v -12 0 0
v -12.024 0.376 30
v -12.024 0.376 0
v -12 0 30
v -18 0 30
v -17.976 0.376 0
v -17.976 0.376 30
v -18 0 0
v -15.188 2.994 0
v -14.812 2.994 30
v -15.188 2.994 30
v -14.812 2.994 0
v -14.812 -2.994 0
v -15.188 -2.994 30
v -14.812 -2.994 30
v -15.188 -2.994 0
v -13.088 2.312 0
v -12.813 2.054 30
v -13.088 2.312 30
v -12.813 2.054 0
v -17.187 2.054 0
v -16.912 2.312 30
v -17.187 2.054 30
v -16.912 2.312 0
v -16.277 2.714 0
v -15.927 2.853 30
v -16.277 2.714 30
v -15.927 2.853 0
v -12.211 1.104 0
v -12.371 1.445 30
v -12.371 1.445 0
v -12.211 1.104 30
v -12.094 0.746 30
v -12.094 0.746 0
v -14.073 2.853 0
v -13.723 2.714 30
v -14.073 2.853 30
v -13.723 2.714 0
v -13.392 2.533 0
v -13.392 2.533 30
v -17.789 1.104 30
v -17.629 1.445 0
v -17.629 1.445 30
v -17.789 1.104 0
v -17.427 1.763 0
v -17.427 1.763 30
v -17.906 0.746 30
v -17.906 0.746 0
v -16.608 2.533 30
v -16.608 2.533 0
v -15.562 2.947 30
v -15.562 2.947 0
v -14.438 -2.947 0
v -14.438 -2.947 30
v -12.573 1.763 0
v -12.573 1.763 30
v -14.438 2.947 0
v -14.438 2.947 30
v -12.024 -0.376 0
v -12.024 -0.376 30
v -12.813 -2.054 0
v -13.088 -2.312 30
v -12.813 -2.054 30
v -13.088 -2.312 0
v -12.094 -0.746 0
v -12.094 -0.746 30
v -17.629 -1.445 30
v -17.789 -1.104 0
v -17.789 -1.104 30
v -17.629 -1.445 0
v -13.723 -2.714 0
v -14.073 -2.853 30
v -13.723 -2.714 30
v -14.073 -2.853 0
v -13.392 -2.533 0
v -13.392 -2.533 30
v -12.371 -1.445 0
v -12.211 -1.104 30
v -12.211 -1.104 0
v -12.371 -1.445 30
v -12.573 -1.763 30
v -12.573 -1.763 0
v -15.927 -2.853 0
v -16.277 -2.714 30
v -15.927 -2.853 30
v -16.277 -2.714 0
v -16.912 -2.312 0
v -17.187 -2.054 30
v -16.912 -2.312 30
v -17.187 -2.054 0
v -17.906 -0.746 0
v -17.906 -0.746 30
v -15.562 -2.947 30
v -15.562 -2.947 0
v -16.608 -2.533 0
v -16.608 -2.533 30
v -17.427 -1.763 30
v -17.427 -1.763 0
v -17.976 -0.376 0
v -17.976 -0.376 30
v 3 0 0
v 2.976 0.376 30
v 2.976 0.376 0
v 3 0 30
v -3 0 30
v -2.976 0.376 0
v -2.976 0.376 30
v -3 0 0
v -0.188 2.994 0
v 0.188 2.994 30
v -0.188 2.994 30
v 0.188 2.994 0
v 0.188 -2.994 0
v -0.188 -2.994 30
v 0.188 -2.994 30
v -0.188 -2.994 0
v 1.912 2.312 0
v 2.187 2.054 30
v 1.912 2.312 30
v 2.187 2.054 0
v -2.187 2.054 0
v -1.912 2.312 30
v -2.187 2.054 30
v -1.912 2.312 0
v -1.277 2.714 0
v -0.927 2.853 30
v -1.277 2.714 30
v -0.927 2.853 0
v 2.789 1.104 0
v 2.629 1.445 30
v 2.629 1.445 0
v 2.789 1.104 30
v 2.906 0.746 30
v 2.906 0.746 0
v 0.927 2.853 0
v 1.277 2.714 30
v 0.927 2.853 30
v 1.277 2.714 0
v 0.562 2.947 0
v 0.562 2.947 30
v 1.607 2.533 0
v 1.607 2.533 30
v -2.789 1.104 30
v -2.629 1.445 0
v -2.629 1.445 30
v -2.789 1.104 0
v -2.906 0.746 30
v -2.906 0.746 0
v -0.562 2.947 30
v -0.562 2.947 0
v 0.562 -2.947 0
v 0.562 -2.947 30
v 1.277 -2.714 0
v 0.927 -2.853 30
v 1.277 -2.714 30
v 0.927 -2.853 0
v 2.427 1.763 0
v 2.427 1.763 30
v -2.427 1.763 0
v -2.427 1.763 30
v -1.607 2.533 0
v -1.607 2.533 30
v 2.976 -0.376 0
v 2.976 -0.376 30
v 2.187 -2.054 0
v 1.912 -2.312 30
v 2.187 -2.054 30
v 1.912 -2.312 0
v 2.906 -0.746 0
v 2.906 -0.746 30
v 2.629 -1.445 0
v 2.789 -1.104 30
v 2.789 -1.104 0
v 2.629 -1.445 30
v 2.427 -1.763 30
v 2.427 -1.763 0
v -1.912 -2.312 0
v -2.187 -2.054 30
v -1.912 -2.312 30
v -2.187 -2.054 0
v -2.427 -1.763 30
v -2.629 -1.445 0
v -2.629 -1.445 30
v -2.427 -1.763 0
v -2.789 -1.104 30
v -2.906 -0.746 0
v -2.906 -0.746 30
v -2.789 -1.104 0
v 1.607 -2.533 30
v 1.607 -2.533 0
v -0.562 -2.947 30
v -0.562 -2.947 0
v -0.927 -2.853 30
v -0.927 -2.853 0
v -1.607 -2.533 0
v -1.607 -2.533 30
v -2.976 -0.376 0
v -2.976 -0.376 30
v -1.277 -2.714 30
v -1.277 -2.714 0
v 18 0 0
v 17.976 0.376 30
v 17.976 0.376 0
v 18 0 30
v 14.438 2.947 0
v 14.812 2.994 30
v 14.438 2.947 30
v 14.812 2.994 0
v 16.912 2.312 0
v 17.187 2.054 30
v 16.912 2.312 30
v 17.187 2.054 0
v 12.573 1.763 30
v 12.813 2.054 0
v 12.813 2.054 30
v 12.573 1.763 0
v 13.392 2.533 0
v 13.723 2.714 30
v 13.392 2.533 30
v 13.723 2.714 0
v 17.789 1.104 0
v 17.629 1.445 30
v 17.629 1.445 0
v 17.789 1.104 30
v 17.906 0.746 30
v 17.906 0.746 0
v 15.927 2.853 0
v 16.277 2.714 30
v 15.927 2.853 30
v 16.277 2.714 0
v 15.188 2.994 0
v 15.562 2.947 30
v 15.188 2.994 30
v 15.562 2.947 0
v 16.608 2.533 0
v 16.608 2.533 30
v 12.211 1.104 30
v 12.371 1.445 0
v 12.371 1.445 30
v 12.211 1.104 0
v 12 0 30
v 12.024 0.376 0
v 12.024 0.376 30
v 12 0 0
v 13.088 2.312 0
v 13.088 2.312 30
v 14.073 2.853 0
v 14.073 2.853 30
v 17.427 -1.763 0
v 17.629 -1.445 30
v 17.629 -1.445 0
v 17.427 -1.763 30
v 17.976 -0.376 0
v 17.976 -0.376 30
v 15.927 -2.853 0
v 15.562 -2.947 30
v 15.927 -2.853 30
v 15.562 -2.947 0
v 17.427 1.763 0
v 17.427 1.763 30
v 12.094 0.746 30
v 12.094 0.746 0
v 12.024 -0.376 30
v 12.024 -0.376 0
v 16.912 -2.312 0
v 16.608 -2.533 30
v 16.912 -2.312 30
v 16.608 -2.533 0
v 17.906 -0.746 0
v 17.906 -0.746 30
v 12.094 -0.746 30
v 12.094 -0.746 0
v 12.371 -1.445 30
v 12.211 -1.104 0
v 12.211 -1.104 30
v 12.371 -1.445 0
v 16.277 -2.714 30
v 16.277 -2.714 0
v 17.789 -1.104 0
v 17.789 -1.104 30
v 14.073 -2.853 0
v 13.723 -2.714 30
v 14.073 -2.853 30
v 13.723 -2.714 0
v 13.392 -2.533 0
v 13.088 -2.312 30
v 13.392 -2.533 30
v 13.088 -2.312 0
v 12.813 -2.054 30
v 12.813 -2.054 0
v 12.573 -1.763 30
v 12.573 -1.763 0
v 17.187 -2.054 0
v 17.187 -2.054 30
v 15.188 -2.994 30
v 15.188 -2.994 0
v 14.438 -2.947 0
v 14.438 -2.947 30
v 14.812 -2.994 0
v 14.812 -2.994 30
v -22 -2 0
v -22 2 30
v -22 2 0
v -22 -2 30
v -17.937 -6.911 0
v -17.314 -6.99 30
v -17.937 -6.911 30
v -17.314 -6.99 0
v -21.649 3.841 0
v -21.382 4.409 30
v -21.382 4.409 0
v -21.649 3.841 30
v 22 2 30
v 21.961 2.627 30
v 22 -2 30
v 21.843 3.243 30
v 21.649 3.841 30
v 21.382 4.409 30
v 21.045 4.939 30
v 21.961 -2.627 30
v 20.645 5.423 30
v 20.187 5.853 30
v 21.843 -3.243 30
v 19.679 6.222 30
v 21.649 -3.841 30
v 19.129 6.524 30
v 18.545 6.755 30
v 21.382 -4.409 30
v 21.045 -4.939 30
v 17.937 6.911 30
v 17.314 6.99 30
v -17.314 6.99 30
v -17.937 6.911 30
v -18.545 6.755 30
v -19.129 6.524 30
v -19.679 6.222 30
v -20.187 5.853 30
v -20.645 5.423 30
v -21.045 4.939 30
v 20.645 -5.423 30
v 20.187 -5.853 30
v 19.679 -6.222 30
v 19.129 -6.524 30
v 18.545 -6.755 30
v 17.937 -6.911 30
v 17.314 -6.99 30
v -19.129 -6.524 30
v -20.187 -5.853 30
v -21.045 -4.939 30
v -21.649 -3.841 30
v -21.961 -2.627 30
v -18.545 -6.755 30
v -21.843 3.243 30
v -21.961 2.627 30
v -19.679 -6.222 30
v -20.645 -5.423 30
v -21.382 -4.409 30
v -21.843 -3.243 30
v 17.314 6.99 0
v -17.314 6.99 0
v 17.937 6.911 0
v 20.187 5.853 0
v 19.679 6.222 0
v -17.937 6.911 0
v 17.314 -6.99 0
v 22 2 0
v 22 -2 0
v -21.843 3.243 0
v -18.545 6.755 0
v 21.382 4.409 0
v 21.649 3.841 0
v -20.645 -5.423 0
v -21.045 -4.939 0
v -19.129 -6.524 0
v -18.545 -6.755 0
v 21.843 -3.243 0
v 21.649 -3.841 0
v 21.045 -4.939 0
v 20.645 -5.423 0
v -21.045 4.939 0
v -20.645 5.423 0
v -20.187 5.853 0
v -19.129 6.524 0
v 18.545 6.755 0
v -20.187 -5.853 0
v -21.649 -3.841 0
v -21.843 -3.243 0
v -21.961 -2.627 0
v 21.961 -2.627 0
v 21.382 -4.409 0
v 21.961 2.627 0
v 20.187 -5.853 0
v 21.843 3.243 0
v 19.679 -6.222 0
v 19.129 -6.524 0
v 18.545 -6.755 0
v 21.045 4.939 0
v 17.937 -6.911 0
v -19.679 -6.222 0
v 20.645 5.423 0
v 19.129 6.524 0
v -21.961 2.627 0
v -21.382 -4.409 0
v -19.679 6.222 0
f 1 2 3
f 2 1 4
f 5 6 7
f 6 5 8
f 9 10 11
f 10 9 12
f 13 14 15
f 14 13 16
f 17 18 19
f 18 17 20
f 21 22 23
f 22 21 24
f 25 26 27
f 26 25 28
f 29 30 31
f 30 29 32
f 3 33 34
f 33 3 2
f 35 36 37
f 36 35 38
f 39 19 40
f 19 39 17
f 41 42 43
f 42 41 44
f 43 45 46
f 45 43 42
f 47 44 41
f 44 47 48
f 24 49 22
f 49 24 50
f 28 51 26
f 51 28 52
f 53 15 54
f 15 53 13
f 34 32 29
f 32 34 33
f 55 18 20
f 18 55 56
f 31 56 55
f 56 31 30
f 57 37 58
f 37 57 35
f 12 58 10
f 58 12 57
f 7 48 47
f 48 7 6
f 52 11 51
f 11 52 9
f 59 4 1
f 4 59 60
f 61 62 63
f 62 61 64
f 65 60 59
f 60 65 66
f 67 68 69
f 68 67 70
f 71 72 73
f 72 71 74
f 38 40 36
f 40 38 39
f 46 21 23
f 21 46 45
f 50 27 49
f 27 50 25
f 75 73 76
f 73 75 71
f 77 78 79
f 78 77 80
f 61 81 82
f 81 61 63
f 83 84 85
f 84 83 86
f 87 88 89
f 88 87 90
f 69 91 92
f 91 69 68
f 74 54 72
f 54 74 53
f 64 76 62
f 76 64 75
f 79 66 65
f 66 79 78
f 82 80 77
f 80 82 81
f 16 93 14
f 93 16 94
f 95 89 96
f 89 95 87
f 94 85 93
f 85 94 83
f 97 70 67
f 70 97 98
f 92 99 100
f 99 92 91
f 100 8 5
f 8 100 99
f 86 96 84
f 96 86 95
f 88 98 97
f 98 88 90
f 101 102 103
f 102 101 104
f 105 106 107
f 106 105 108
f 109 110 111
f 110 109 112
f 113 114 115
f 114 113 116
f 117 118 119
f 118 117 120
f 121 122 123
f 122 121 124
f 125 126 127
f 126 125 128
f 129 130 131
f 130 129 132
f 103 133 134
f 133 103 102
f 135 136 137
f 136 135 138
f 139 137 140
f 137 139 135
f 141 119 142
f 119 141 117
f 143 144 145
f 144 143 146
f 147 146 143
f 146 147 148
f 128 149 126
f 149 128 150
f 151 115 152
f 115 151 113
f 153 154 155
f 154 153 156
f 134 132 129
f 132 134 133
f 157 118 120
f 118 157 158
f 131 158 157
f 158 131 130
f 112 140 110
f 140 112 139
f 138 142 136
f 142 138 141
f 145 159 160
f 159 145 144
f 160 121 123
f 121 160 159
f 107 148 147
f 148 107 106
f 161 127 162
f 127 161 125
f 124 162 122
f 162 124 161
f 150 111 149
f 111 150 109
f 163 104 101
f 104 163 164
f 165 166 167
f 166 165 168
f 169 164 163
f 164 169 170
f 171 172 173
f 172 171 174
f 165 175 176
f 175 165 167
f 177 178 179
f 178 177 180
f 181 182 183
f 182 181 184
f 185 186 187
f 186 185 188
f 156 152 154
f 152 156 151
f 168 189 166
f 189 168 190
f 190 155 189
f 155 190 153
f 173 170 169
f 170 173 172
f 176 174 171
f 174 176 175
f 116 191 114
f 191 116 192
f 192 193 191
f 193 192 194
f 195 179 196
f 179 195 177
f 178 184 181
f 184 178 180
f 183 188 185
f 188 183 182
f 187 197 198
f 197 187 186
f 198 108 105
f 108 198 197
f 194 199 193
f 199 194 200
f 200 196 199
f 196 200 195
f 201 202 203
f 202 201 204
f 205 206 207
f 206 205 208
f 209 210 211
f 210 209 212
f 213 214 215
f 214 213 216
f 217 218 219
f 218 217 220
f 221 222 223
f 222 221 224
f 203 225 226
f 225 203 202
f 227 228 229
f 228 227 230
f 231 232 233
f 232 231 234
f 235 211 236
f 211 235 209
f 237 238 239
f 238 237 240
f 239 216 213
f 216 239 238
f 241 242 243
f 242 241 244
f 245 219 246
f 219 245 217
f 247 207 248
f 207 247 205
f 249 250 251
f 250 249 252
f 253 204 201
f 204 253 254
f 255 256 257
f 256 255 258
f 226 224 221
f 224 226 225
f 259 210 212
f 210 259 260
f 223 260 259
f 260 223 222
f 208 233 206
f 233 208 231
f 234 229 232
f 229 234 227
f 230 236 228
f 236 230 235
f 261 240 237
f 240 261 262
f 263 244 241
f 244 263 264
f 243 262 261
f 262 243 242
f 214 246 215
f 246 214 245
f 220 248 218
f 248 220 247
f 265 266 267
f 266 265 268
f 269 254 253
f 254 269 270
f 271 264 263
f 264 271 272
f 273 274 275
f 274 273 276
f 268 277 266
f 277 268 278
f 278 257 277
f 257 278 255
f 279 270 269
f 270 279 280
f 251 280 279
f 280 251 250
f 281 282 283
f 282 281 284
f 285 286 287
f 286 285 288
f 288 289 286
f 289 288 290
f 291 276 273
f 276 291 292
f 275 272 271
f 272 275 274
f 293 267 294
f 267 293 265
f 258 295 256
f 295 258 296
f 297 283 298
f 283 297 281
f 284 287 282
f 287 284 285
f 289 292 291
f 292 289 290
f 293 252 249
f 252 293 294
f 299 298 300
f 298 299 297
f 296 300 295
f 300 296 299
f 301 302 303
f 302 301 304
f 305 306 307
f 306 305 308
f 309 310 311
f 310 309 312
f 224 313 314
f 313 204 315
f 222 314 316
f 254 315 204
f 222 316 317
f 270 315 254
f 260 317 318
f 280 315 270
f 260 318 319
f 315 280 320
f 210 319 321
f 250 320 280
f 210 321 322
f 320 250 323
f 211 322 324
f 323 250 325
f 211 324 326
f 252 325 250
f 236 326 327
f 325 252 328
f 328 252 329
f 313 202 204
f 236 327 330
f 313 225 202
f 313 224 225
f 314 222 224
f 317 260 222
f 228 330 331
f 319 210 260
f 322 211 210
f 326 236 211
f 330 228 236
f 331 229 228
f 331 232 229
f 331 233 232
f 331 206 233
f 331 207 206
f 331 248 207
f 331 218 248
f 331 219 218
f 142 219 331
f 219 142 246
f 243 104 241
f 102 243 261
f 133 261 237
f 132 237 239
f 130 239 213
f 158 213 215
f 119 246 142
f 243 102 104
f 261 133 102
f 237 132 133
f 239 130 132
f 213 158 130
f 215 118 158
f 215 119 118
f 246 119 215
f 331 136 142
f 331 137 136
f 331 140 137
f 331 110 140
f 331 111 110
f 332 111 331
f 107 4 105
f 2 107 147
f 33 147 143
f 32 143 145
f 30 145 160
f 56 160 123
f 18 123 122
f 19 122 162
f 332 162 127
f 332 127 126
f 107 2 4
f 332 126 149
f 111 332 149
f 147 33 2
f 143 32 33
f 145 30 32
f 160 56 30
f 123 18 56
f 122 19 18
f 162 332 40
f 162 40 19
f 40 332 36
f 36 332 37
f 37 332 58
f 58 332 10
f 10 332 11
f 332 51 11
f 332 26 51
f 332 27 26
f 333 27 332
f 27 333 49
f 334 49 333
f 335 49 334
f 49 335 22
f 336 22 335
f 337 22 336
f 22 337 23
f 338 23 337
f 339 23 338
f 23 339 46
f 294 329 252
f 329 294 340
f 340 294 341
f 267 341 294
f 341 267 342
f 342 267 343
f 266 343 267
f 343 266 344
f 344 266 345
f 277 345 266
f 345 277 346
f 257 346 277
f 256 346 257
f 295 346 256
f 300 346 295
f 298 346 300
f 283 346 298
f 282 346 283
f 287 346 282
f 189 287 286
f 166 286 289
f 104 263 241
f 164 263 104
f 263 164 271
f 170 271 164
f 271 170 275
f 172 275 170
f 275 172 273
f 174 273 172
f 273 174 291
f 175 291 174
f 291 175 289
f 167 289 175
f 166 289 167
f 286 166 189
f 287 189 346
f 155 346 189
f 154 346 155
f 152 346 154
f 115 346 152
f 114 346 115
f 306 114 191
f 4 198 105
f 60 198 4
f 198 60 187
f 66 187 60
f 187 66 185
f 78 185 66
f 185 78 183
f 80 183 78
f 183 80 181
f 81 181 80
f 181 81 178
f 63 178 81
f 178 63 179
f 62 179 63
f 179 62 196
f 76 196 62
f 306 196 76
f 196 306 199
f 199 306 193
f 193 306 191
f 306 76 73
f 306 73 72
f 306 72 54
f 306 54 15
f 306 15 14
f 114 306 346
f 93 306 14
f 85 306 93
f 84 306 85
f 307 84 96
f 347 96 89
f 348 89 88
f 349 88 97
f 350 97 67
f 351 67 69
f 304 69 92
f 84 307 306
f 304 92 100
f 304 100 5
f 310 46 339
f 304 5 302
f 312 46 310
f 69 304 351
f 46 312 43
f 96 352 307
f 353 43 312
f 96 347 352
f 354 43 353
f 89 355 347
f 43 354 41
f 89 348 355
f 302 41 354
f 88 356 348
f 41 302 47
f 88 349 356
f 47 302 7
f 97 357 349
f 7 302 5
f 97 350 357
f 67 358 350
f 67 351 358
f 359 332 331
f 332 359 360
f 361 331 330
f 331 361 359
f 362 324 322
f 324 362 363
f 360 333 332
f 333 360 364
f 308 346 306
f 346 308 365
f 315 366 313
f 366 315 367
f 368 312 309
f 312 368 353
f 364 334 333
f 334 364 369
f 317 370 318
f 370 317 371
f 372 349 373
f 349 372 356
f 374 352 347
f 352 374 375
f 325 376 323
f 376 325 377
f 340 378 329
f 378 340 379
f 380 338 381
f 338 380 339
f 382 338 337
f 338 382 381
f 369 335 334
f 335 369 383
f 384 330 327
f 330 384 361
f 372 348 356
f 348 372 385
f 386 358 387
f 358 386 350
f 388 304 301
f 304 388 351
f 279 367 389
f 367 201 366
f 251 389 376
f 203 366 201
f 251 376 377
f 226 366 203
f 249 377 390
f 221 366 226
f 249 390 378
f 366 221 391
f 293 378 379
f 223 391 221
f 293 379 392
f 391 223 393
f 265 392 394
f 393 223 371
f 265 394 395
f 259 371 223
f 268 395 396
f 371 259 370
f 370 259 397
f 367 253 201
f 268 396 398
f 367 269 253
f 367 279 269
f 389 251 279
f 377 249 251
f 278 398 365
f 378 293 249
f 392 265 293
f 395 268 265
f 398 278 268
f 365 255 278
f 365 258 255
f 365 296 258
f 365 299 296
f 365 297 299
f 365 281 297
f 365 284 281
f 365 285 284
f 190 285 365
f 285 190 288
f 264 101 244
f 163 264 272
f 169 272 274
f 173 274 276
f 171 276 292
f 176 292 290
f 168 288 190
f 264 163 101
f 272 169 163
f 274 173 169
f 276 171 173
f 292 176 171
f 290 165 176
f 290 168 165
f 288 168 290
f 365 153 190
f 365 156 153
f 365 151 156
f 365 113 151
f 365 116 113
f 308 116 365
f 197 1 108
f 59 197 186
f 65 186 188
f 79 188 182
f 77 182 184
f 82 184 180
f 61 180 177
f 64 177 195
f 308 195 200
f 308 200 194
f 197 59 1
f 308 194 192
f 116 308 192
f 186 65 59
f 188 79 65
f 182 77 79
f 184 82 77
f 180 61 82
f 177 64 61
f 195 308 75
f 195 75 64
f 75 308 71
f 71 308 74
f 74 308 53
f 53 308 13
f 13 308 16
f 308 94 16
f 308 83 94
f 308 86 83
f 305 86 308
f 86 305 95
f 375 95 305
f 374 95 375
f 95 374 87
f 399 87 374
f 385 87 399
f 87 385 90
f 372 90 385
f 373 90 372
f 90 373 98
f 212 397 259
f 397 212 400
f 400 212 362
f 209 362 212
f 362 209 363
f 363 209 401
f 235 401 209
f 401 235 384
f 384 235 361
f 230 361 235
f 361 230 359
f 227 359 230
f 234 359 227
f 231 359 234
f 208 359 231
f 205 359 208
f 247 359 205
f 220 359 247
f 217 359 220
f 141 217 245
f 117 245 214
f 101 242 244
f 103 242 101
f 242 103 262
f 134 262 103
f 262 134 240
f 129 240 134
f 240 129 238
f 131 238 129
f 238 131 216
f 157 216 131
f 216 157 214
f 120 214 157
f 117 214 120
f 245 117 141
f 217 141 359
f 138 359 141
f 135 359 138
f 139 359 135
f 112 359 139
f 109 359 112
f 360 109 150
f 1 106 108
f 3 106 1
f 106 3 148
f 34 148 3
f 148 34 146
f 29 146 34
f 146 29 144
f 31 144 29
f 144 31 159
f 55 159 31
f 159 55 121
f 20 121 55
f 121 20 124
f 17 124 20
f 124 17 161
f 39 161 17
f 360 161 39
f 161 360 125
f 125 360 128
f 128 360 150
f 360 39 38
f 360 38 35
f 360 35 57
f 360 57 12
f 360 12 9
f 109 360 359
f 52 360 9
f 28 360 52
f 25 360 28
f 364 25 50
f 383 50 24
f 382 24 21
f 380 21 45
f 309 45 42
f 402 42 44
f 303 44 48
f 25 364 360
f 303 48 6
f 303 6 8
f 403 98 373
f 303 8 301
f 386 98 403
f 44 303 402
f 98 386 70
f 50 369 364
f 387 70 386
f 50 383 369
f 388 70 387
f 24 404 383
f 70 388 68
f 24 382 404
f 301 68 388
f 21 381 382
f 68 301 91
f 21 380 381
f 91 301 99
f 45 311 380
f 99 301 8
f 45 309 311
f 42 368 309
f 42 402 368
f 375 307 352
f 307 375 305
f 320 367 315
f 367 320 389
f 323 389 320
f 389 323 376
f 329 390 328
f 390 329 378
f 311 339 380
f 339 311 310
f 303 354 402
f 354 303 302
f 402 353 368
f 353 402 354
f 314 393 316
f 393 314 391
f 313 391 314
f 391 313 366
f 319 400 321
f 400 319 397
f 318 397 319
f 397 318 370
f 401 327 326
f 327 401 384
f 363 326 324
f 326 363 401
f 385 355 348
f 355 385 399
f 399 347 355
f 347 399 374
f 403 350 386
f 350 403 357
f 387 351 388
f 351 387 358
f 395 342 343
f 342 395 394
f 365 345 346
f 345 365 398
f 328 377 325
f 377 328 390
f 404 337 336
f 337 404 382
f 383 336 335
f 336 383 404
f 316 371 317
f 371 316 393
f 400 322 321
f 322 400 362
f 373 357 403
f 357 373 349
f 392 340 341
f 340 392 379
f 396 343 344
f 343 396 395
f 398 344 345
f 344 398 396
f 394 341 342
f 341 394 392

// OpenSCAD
$fn = 50;


difference() {
	union() {
		hull() {
			translate(v = [-17.0000000000, 2.0000000000, 0]) {
				cylinder(h = 30, r = 5);
			}
			translate(v = [17.0000000000, 2.0000000000, 0]) {
				cylinder(h = 30, r = 5);
			}
			translate(v = [-17.0000000000, -2.0000000000, 0]) {
				cylinder(h = 30, r = 5);
			}
			translate(v = [17.0000000000, -2.0000000000, 0]) {
				cylinder(h = 30, r = 5);
			}
		}
	}
	union() {
		translate(v = [-15.0000000000, 0.0000000000, 0]) {
			translate(v = [0, 0, -100]) {
				cylinder(h = 200, r = 3.0000000000);
			}
		}
		translate(v = [0, 0, -100]) {
			cylinder(h = 200, r = 3.0000000000);
		}
		translate(v = [15.0000000000, 0.0000000000, 0]) {
			translate(v = [0, 0, -100]) {
				cylinder(h = 200, r = 3.0000000000);
			}
		}
	}
}
